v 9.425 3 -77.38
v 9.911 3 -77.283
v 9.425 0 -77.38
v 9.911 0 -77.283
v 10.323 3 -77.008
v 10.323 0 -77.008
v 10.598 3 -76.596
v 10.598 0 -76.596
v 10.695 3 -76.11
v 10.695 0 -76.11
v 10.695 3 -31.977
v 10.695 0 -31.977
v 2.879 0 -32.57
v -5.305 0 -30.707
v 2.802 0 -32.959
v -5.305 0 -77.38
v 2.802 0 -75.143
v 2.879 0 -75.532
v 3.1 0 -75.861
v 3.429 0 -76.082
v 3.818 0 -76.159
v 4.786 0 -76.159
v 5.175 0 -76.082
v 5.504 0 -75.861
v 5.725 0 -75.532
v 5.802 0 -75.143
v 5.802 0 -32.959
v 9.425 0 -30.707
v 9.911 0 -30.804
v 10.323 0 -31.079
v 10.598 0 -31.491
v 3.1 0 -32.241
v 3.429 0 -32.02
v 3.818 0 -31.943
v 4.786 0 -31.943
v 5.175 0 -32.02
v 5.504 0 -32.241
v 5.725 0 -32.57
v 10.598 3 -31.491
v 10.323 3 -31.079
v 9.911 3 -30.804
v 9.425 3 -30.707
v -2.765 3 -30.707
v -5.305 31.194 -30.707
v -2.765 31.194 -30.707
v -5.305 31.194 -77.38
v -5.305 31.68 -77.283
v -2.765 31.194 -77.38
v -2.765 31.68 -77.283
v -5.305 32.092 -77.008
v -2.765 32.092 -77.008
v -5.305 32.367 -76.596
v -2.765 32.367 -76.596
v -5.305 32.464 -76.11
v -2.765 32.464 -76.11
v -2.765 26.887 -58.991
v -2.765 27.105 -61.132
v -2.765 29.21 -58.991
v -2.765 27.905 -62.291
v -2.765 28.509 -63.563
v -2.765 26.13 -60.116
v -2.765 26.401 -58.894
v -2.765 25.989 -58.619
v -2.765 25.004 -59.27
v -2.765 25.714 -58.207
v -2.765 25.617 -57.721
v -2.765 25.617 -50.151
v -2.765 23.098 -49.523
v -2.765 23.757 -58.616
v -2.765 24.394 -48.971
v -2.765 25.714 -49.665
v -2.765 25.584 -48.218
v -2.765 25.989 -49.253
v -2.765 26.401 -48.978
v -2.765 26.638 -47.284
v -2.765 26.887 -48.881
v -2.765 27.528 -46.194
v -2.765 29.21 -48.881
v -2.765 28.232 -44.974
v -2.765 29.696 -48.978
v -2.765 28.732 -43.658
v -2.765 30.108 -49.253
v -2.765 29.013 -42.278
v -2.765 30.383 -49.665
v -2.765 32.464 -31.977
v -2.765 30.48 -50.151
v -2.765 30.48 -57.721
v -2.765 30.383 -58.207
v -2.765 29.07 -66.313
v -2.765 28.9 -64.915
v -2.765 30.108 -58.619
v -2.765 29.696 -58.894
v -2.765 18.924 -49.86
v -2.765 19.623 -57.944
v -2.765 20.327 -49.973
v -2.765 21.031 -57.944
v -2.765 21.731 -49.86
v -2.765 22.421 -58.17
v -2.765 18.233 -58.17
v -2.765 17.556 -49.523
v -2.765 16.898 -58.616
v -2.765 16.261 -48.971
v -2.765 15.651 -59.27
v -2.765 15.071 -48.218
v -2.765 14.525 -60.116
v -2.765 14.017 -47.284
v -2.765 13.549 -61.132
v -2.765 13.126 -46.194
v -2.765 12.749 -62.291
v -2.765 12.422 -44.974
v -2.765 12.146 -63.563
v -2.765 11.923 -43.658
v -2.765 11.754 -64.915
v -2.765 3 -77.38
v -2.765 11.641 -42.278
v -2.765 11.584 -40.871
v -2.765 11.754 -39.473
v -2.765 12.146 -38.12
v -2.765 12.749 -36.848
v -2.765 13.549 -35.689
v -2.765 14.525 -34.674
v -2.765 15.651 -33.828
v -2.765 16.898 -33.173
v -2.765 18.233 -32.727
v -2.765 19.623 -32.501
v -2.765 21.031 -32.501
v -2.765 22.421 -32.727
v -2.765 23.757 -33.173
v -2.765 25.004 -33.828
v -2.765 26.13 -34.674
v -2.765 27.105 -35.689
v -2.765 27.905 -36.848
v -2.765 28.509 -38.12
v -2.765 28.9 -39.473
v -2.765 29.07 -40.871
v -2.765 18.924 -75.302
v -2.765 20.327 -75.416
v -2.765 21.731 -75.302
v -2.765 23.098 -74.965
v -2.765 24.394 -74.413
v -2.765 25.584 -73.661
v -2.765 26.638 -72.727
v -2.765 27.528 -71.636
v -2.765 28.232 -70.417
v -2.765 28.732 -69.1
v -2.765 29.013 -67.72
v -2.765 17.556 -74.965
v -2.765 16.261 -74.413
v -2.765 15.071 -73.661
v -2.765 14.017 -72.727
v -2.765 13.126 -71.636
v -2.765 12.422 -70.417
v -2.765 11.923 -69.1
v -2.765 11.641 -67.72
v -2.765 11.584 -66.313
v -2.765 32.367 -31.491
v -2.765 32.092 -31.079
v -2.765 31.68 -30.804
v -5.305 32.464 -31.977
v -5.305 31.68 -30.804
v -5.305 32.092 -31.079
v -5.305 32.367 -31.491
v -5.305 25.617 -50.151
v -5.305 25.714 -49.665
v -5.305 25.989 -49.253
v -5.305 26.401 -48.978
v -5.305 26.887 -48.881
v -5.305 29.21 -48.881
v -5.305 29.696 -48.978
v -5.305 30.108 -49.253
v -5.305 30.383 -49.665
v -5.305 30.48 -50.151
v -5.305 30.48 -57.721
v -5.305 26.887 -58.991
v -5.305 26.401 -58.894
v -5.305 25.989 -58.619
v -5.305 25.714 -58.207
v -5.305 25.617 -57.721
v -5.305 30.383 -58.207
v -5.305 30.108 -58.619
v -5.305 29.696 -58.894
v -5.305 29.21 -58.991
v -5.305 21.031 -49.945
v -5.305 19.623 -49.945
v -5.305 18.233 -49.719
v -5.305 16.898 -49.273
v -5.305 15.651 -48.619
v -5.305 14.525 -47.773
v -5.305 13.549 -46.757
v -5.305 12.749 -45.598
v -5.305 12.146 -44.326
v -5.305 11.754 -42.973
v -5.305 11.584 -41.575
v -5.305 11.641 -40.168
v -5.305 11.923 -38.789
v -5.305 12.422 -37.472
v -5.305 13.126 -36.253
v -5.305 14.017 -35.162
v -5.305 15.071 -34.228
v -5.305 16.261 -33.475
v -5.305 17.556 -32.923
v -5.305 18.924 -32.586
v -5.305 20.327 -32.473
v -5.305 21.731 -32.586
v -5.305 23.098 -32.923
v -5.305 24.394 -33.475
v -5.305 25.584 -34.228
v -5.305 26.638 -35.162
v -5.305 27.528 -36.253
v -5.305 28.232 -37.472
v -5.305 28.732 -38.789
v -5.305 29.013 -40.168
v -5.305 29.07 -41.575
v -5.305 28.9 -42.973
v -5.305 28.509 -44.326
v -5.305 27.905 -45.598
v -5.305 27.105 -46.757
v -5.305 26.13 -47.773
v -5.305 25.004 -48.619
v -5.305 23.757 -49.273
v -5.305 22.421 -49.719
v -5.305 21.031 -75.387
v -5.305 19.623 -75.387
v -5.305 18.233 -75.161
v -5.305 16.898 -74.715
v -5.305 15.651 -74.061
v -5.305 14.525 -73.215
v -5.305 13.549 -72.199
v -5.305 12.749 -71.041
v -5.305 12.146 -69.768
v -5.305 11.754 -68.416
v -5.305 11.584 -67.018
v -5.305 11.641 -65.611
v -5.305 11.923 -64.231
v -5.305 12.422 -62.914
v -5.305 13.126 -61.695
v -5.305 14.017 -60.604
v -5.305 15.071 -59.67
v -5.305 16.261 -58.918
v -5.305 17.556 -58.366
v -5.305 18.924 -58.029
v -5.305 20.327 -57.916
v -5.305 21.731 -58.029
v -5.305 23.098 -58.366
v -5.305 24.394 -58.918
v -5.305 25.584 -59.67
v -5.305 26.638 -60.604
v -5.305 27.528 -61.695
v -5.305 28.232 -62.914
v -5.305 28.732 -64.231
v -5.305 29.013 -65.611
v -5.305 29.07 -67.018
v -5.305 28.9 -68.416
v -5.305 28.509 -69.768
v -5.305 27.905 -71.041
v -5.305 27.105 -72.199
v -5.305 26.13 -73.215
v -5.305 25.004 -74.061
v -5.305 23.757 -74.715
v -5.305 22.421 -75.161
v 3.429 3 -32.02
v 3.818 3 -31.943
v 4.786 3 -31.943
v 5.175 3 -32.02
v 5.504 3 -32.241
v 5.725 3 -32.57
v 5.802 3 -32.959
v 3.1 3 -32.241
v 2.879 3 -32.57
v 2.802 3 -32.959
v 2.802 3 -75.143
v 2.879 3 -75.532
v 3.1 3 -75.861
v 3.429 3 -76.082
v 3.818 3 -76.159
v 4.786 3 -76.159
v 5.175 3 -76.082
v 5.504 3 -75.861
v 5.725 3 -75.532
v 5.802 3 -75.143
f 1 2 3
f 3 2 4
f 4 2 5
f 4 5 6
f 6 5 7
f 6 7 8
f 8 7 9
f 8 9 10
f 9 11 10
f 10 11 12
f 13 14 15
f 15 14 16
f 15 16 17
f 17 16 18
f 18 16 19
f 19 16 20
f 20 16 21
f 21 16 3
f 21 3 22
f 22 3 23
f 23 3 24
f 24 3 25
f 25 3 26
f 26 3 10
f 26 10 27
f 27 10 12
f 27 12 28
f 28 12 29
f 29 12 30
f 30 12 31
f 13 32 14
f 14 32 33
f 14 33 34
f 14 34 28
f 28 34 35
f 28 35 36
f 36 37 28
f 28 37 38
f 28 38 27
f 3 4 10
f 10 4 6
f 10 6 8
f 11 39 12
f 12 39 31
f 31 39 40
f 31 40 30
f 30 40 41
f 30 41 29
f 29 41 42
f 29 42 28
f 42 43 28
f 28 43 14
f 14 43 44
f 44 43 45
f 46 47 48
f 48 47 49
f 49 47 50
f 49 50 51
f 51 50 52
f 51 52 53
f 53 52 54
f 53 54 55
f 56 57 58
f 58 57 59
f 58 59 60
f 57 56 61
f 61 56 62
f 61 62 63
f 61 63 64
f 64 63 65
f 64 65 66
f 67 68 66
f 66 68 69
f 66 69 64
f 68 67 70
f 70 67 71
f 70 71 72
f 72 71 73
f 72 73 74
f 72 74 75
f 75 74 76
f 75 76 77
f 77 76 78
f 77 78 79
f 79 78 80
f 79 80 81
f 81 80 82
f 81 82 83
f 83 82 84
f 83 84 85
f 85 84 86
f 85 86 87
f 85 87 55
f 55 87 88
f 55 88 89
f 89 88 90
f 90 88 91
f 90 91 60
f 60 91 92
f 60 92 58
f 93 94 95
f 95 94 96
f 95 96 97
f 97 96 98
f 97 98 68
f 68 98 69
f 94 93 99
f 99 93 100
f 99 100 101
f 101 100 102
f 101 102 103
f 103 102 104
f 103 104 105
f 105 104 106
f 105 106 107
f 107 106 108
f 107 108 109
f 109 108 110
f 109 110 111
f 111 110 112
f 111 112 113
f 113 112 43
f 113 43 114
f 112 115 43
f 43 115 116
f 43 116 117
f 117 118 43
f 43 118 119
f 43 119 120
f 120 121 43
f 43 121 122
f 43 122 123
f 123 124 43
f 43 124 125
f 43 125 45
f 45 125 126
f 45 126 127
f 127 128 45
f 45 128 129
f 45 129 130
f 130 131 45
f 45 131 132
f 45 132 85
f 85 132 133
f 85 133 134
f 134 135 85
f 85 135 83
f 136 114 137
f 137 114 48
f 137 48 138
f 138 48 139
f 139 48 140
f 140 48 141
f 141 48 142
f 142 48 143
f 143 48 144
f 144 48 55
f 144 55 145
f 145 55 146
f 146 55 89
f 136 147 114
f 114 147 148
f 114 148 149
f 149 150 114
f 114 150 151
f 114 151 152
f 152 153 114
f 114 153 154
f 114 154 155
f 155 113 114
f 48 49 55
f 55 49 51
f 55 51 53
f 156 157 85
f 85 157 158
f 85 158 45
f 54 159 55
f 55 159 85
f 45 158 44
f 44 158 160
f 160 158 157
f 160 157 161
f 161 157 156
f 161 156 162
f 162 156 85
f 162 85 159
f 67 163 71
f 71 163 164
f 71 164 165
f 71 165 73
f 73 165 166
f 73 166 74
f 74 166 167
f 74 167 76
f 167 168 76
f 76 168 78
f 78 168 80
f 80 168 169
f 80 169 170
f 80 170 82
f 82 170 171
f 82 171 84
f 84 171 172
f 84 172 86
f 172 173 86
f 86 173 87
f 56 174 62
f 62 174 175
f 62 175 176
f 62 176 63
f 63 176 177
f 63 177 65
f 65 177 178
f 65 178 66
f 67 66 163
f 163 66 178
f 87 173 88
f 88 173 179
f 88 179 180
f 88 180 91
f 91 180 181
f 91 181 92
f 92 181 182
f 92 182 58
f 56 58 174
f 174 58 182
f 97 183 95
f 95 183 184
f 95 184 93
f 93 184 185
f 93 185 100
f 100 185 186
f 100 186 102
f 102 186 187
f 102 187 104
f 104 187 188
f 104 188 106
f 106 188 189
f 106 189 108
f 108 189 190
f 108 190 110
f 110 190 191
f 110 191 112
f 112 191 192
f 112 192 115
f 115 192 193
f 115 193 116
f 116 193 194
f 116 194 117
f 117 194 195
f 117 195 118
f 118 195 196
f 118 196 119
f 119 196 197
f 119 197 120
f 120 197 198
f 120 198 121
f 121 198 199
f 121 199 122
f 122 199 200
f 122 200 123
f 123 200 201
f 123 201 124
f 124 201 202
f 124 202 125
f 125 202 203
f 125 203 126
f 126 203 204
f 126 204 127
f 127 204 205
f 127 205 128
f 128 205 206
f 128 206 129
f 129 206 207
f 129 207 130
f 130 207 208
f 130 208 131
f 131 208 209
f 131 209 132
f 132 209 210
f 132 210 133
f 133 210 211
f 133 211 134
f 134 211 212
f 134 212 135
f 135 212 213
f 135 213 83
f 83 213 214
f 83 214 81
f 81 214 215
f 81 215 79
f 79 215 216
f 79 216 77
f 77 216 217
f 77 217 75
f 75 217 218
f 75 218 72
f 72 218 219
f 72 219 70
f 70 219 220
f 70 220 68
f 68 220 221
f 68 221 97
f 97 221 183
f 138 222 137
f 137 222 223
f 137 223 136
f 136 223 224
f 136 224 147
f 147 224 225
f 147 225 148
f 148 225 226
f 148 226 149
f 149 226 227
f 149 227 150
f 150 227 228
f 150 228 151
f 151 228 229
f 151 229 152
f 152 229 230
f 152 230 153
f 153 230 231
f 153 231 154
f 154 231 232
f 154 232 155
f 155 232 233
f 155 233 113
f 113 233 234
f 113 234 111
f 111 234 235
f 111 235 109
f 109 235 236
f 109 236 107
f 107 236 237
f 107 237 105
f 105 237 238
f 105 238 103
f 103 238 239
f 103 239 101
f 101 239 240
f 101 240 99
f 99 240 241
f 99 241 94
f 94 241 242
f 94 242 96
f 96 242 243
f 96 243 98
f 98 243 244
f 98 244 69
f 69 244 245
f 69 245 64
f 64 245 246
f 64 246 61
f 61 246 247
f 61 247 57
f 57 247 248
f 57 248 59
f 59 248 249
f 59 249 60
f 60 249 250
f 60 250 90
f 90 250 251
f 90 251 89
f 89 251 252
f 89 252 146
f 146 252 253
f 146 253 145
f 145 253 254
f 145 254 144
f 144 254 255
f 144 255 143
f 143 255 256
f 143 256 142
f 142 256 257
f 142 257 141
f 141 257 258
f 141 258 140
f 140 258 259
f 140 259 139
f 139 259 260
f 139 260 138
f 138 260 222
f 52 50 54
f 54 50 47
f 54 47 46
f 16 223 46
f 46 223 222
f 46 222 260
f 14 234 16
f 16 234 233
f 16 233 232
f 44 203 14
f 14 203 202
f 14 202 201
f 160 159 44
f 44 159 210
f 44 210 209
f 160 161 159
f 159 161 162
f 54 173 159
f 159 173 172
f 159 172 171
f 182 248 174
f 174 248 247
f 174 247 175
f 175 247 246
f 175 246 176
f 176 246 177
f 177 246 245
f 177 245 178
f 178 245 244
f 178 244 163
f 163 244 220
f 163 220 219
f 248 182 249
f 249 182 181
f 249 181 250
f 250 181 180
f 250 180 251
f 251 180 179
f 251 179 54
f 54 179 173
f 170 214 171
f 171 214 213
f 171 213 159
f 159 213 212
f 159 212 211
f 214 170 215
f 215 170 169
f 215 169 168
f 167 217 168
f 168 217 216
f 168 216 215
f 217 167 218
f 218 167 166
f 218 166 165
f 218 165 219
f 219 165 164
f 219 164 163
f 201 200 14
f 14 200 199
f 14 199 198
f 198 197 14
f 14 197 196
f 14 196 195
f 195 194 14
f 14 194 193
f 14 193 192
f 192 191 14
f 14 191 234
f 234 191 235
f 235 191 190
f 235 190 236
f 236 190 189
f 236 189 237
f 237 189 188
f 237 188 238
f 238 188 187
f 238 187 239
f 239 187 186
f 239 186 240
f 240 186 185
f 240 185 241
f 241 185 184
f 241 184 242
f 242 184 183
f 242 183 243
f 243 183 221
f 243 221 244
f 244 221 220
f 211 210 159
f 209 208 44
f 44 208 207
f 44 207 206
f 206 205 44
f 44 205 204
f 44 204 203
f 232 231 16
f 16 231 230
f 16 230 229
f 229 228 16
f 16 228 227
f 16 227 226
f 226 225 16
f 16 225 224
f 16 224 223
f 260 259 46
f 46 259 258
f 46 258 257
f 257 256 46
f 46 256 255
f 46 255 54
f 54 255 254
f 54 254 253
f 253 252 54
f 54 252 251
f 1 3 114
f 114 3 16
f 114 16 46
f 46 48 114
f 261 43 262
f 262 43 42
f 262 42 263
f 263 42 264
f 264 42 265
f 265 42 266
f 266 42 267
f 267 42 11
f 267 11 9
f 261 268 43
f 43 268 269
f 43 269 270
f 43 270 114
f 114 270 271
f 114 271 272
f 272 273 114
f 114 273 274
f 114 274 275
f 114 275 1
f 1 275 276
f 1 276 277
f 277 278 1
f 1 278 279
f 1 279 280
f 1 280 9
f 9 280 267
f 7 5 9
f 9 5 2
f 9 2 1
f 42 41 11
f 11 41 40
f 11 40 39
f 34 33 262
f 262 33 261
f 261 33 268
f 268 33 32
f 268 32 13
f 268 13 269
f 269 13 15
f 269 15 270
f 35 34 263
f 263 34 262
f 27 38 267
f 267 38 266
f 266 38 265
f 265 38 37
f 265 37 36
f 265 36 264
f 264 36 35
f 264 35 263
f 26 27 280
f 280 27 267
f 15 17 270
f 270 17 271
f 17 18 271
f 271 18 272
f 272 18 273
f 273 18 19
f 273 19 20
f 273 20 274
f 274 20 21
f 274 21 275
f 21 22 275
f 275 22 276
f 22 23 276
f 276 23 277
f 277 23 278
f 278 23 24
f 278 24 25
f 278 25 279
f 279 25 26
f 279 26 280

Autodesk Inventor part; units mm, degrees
ref_plane "YZ Plane" through (0, 0, 0) normal (1, 0, 0) x (0, 1, 0)
ref_plane "XZ Plane" through (0, 0, 0) normal (0, 1, 0) x (-1, 0, 0)
ref_plane "XY Plane" through (0, 0, 0) normal (0, 0, 1) x (1, 0, 0)
sketch "Base" plane through (0, 0, 0) normal (0, 1, 0) x (-1, 0, 0)
  line L0 (-10.6945, -30.7069) -> (-10.6945, -77.3796)
  line L1 (5.3055, -77.3796) -> (5.3055, -30.7069)
  line L2 (5.3055, -30.7069) -> (-10.6945, -30.7069)
  line L3 (5.3055, -77.3796) -> (-10.6945, -77.3796)
  point P0 (0, 0)
extrude "Extrusion1" add sketch "Base" along normal blind 3
sketch "FrontWall" plane through (0, 3, 0) normal (0, 1, 0) x (1, 0, 0)
  line L0 (-5.3055, 77.3796) -> (-5.3055, 30.7069) projected
  line L1 (-2.7655, 31.0004) -> (-2.7655, 77.0861)
  line L2 (-5.3055, 77.3796) -> (-2.7655, 77.3796)
  line L3 (10.6945, 77.3796) -> (-5.3055, 77.3796) projected
  line L4 (-2.7655, 77.0861) -> (-2.7655, 77.2936)
  line L5 (-2.7655, 77.2936) -> (-2.7655, 77.3796)
  line L6 (-2.7655, 31.0004) -> (-2.7655, 30.7069)
  line L7 (-5.3055, 30.7069) -> (-2.7655, 30.7069)
  line L8 (-5.3055, 30.7069) -> (10.6945, 30.7069) projected
  point P0 (0, 0)
extrude "Extrusion2" add sketch "FrontWall" along normal blind 29.464
sketch "Sketch5" plane through (-5.3055, 0, -77.3796) normal (-1, 0, 0) x (0, 0, 1)
  line L0 (-47.9308, 0) -> (-47.9308, 32.464)
  line L1 (0, 0) -> (0, 32.464)
  line L2 (46.1641, 31.6804) -> (0.7141, 31.6804)
  line L3 (0.7141, 31.6804) -> (0.7141, 10.0772)
  line L4 (0.7141, 10.0772) -> (46.1641, 10.0772)
  line L5 (46.1641, 10.0772) -> (46.1641, 31.6804)
  line L6 (23.4391, 30.4798) -> (18.3891, 30.4798)
  line L7 (18.3891, 30.4798) -> (18.3891, 25.6172)
  line L8 (18.3891, 25.6172) -> (28.4983, 25.6172)
  line L9 (28.4983, 25.6172) -> (28.4983, 30.4798)
  line L10 (28.4983, 30.4798) -> (23.4391, 30.4798)
  point P0 (77.3796, 0)
  point P1 (74.13, 0)
  point P2 (10.7141, 20.3272)
  point P3 (36.1565, 20.3272)
  dimension "d27" = 47.9308
  dimension "d28" = 45.45
hole "Hole2" at (-5.3055, 20.3272, -41.2231) at (-5.3055, 20.3272, -66.6655) direction (1, 0, 0) diameter 17.5 end through all
extrude "Extrusion4" cut sketch "Sketch5" against normal blind 29.464 contours L10 L9 L8 L7 L6
fillet "Fillet1" radius 1.27 4 edges at (-4.0355, 30.4798, -58.9905) (-4.0355, 25.6172, -58.9905) (-4.0355, 30.4798, -48.8813) (-4.0355, 25.6172, -48.8813)
fillet "Fillet2" radius 1.27 4 edges at (-4.0355, 32.464, -30.7069) (-4.0355, 32.464, -77.3796) (10.6945, 1.5, -30.7069) (10.6945, 1.5, -77.3796)
sketch "Sketch8" plane through (0, 3, 0) normal (0, 1, 0) x (1, 0, 0)
  line L0 (3.818, 31.9431) -> (4.786, 31.9431)
  line L1 (5.802, 32.9591) -> (5.802, 75.143)
  line L2 (4.786, 76.159) -> (3.818, 76.159)
  line L3 (2.802, 75.143) -> (2.802, 32.9591)
  arc A0 (3.818, 76.159) -> (2.802, 75.143) centre (3.818, 75.143) ccw
  arc A1 (5.802, 75.143) -> (4.786, 76.159) centre (4.786, 75.143) ccw
  arc A2 (2.802, 32.9591) -> (3.818, 31.9431) centre (3.818, 32.9591) ccw
  arc A3 (4.786, 31.9431) -> (5.802, 32.9591) centre (4.786, 32.9591) ccw
  point P0 (0, 0)
  point P1 (5.802, 76.159)
  point P2 (2.802, 76.159)
  dimension "d62" = 3
  dimension "d63" = 1.016
extrude "Extrusion6" cut sketch "Sketch8" against normal through all
properties part number "UltrasonicSensorMountSingle"
